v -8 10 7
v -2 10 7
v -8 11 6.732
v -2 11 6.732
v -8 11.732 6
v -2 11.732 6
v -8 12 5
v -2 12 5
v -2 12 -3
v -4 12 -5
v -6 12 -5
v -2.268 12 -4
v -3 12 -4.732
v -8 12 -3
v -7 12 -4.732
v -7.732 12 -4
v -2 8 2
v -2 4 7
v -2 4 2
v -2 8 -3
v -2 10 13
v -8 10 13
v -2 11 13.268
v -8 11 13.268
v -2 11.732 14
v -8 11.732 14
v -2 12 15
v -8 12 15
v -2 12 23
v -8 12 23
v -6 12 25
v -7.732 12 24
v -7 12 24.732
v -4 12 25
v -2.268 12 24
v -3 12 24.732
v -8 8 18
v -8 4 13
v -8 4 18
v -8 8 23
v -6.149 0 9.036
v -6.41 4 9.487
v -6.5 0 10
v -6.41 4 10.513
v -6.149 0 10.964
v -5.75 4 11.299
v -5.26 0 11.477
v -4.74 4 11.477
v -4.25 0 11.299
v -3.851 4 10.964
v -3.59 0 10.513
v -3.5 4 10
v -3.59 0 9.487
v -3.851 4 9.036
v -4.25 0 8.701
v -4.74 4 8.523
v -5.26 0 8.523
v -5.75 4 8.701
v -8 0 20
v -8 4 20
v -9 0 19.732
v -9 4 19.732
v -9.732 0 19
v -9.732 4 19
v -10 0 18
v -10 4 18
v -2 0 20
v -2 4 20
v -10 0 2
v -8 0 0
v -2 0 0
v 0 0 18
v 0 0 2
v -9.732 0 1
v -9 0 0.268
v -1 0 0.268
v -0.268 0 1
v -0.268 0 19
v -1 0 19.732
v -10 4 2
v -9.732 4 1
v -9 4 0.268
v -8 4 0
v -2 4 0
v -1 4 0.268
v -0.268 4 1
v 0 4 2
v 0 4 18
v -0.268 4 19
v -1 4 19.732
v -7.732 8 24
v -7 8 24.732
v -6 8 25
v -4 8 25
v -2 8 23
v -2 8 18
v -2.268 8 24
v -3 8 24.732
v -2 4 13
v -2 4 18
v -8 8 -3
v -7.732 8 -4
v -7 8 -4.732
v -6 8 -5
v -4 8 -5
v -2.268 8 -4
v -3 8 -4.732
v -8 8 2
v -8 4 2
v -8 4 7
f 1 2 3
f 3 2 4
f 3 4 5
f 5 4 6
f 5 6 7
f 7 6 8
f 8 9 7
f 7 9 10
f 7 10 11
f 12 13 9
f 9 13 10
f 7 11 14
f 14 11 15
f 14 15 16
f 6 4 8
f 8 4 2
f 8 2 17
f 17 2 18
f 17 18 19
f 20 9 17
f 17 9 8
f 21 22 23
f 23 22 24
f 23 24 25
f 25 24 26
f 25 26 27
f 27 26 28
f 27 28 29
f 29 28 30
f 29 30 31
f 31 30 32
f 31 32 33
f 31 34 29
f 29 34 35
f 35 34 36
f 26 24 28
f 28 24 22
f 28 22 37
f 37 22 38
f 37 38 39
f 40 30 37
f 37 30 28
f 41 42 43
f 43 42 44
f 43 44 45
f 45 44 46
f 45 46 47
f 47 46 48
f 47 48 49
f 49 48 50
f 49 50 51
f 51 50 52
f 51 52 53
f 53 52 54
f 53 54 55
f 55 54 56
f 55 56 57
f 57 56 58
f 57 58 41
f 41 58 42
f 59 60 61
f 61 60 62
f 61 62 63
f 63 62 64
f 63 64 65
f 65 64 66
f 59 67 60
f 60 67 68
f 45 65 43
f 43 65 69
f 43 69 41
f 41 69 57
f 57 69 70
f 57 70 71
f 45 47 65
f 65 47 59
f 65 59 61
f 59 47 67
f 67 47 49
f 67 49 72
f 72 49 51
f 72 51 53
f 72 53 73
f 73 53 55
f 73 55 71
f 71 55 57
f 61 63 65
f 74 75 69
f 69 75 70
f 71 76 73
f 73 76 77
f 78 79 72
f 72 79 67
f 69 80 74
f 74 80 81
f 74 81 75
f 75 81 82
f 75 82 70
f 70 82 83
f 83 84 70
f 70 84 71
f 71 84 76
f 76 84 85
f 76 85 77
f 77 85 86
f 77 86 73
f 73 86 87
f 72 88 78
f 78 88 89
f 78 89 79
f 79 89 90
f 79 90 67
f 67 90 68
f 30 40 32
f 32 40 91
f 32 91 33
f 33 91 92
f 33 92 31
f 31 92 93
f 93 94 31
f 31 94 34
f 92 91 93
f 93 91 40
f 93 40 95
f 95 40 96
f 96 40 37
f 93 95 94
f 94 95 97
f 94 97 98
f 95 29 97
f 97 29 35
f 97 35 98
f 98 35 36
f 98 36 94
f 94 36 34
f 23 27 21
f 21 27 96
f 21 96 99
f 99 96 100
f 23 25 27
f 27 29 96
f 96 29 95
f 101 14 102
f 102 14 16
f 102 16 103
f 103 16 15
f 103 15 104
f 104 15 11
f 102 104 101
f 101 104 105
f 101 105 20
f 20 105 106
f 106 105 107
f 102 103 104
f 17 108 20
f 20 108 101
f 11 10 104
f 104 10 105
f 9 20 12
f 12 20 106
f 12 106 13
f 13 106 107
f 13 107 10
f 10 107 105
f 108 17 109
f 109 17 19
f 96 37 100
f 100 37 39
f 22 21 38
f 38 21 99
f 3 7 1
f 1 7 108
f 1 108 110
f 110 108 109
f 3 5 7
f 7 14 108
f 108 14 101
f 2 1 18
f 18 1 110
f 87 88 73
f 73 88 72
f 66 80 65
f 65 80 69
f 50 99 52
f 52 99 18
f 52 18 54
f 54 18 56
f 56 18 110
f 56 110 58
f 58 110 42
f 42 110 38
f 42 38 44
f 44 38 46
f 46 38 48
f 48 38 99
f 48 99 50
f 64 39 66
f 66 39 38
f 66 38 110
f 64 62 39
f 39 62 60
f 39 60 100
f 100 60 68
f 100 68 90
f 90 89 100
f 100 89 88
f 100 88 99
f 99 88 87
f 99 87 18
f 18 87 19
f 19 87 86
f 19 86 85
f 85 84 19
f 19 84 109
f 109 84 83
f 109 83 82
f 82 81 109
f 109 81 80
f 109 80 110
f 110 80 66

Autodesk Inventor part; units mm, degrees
ref_plane "YZ Plane" through (0, 0, 0) normal (1, 0, 0) x (0, 1, 0)
ref_plane "XZ Plane" through (0, 0, 0) normal (0, 1, 0) x (-1, 0, 0)
ref_plane "XY Plane" through (0, 0, 0) normal (0, 0, 1) x (1, 0, 0)
sketch "Sketch1" plane through (0, 0, 0) normal (0, 1, 0) x (-1, 0, 0)
  line L0 (0, 0) -> (10, 0)
  line L1 (10, 0) -> (10, 20)
  line L2 (10, 20) -> (0, 20)
  line L3 (0, 20) -> (0, 0)
  dimension "d0" = 10
  dimension "d1" = 20
extrude "Extrusion1" add sketch "Sketch1" along normal blind 4
sketch "Sketch2" plane through (0, 4, 0) normal (0, 1, 0) x (1, 0, 0)
  line L0 (-8, -18) -> (-2, -18)
  line L1 (-2, -18) -> (-2, -13)
  line L2 (-2, -13) -> (-8, -13)
  line L3 (-8, -13) -> (-8, -18)
  line L4 (-8, -2) -> (-2, -2)
  line L5 (-2, -2) -> (-2, -7)
  line L6 (-2, -7) -> (-8, -7)
  line L7 (-8, -7) -> (-8, -2)
  point P0 (0, 0)
  dimension "d4" = 6
  dimension "d5" = 5
  dimension "d6" = 5
extrude "Extrusion2" add sketch "Sketch2" along normal blind 8
sketch "Sketch3" plane through (-8, 4, 18) normal (0, 0, 1) x (1, 0, 0)
  line L0 (0, 0) -> (0, 8) projected
  line L1 (6, 8) -> (0, 8)
  line L2 (0, 8) -> (0, 4)
  line L3 (0, 4) -> (6, 4)
  line L4 (6, 4) -> (6, 8)
  point P0 (8, -4)
  point P1 (0, 8)
  dimension "d9" = 4
extrude "Extrusion3" add sketch "Sketch3" along normal blind 7
sketch "Sketch4" plane through (-2, 4, 2) normal (0, 0, -1) x (-1, 0, 0)
  line L0 (0, 8) -> (6, 8) projected
  line L1 (0, 8) -> (6, 8)
  line L2 (6, 8) -> (6, 4)
  line L3 (6, 4) -> (0, 4)
  line L4 (0, 4) -> (0, 8)
  point P0 (-2, -4)
  dimension "d12" = 4
extrude "Extrusion4" add sketch "Sketch4" along normal blind 7
fillet "Fillet1" radius 2 8 edges at (-2, 10, -5) (-8, 10, -5) (-2, 10, 25) (-8, 10, 25) (0, 2, 20) (0, 2, 0) (-10, 2, 0) (-10, 2, 20)
sketch "Sketch5" plane through (0, 4, 0) normal (0, 1, 0) x (1, 0, 0)
  circle A0 centre (-5, -10) radius 1.5
  point P0 (0, 0)
  dimension "d16" = 3
extrude "Extrusion5" cut sketch "Sketch5" against normal blind 7
fillet "Fillet2" radius 2 2 edges at (-5, 12, 13) (-5, 12, 7)
properties part number "PlatformSlider"
